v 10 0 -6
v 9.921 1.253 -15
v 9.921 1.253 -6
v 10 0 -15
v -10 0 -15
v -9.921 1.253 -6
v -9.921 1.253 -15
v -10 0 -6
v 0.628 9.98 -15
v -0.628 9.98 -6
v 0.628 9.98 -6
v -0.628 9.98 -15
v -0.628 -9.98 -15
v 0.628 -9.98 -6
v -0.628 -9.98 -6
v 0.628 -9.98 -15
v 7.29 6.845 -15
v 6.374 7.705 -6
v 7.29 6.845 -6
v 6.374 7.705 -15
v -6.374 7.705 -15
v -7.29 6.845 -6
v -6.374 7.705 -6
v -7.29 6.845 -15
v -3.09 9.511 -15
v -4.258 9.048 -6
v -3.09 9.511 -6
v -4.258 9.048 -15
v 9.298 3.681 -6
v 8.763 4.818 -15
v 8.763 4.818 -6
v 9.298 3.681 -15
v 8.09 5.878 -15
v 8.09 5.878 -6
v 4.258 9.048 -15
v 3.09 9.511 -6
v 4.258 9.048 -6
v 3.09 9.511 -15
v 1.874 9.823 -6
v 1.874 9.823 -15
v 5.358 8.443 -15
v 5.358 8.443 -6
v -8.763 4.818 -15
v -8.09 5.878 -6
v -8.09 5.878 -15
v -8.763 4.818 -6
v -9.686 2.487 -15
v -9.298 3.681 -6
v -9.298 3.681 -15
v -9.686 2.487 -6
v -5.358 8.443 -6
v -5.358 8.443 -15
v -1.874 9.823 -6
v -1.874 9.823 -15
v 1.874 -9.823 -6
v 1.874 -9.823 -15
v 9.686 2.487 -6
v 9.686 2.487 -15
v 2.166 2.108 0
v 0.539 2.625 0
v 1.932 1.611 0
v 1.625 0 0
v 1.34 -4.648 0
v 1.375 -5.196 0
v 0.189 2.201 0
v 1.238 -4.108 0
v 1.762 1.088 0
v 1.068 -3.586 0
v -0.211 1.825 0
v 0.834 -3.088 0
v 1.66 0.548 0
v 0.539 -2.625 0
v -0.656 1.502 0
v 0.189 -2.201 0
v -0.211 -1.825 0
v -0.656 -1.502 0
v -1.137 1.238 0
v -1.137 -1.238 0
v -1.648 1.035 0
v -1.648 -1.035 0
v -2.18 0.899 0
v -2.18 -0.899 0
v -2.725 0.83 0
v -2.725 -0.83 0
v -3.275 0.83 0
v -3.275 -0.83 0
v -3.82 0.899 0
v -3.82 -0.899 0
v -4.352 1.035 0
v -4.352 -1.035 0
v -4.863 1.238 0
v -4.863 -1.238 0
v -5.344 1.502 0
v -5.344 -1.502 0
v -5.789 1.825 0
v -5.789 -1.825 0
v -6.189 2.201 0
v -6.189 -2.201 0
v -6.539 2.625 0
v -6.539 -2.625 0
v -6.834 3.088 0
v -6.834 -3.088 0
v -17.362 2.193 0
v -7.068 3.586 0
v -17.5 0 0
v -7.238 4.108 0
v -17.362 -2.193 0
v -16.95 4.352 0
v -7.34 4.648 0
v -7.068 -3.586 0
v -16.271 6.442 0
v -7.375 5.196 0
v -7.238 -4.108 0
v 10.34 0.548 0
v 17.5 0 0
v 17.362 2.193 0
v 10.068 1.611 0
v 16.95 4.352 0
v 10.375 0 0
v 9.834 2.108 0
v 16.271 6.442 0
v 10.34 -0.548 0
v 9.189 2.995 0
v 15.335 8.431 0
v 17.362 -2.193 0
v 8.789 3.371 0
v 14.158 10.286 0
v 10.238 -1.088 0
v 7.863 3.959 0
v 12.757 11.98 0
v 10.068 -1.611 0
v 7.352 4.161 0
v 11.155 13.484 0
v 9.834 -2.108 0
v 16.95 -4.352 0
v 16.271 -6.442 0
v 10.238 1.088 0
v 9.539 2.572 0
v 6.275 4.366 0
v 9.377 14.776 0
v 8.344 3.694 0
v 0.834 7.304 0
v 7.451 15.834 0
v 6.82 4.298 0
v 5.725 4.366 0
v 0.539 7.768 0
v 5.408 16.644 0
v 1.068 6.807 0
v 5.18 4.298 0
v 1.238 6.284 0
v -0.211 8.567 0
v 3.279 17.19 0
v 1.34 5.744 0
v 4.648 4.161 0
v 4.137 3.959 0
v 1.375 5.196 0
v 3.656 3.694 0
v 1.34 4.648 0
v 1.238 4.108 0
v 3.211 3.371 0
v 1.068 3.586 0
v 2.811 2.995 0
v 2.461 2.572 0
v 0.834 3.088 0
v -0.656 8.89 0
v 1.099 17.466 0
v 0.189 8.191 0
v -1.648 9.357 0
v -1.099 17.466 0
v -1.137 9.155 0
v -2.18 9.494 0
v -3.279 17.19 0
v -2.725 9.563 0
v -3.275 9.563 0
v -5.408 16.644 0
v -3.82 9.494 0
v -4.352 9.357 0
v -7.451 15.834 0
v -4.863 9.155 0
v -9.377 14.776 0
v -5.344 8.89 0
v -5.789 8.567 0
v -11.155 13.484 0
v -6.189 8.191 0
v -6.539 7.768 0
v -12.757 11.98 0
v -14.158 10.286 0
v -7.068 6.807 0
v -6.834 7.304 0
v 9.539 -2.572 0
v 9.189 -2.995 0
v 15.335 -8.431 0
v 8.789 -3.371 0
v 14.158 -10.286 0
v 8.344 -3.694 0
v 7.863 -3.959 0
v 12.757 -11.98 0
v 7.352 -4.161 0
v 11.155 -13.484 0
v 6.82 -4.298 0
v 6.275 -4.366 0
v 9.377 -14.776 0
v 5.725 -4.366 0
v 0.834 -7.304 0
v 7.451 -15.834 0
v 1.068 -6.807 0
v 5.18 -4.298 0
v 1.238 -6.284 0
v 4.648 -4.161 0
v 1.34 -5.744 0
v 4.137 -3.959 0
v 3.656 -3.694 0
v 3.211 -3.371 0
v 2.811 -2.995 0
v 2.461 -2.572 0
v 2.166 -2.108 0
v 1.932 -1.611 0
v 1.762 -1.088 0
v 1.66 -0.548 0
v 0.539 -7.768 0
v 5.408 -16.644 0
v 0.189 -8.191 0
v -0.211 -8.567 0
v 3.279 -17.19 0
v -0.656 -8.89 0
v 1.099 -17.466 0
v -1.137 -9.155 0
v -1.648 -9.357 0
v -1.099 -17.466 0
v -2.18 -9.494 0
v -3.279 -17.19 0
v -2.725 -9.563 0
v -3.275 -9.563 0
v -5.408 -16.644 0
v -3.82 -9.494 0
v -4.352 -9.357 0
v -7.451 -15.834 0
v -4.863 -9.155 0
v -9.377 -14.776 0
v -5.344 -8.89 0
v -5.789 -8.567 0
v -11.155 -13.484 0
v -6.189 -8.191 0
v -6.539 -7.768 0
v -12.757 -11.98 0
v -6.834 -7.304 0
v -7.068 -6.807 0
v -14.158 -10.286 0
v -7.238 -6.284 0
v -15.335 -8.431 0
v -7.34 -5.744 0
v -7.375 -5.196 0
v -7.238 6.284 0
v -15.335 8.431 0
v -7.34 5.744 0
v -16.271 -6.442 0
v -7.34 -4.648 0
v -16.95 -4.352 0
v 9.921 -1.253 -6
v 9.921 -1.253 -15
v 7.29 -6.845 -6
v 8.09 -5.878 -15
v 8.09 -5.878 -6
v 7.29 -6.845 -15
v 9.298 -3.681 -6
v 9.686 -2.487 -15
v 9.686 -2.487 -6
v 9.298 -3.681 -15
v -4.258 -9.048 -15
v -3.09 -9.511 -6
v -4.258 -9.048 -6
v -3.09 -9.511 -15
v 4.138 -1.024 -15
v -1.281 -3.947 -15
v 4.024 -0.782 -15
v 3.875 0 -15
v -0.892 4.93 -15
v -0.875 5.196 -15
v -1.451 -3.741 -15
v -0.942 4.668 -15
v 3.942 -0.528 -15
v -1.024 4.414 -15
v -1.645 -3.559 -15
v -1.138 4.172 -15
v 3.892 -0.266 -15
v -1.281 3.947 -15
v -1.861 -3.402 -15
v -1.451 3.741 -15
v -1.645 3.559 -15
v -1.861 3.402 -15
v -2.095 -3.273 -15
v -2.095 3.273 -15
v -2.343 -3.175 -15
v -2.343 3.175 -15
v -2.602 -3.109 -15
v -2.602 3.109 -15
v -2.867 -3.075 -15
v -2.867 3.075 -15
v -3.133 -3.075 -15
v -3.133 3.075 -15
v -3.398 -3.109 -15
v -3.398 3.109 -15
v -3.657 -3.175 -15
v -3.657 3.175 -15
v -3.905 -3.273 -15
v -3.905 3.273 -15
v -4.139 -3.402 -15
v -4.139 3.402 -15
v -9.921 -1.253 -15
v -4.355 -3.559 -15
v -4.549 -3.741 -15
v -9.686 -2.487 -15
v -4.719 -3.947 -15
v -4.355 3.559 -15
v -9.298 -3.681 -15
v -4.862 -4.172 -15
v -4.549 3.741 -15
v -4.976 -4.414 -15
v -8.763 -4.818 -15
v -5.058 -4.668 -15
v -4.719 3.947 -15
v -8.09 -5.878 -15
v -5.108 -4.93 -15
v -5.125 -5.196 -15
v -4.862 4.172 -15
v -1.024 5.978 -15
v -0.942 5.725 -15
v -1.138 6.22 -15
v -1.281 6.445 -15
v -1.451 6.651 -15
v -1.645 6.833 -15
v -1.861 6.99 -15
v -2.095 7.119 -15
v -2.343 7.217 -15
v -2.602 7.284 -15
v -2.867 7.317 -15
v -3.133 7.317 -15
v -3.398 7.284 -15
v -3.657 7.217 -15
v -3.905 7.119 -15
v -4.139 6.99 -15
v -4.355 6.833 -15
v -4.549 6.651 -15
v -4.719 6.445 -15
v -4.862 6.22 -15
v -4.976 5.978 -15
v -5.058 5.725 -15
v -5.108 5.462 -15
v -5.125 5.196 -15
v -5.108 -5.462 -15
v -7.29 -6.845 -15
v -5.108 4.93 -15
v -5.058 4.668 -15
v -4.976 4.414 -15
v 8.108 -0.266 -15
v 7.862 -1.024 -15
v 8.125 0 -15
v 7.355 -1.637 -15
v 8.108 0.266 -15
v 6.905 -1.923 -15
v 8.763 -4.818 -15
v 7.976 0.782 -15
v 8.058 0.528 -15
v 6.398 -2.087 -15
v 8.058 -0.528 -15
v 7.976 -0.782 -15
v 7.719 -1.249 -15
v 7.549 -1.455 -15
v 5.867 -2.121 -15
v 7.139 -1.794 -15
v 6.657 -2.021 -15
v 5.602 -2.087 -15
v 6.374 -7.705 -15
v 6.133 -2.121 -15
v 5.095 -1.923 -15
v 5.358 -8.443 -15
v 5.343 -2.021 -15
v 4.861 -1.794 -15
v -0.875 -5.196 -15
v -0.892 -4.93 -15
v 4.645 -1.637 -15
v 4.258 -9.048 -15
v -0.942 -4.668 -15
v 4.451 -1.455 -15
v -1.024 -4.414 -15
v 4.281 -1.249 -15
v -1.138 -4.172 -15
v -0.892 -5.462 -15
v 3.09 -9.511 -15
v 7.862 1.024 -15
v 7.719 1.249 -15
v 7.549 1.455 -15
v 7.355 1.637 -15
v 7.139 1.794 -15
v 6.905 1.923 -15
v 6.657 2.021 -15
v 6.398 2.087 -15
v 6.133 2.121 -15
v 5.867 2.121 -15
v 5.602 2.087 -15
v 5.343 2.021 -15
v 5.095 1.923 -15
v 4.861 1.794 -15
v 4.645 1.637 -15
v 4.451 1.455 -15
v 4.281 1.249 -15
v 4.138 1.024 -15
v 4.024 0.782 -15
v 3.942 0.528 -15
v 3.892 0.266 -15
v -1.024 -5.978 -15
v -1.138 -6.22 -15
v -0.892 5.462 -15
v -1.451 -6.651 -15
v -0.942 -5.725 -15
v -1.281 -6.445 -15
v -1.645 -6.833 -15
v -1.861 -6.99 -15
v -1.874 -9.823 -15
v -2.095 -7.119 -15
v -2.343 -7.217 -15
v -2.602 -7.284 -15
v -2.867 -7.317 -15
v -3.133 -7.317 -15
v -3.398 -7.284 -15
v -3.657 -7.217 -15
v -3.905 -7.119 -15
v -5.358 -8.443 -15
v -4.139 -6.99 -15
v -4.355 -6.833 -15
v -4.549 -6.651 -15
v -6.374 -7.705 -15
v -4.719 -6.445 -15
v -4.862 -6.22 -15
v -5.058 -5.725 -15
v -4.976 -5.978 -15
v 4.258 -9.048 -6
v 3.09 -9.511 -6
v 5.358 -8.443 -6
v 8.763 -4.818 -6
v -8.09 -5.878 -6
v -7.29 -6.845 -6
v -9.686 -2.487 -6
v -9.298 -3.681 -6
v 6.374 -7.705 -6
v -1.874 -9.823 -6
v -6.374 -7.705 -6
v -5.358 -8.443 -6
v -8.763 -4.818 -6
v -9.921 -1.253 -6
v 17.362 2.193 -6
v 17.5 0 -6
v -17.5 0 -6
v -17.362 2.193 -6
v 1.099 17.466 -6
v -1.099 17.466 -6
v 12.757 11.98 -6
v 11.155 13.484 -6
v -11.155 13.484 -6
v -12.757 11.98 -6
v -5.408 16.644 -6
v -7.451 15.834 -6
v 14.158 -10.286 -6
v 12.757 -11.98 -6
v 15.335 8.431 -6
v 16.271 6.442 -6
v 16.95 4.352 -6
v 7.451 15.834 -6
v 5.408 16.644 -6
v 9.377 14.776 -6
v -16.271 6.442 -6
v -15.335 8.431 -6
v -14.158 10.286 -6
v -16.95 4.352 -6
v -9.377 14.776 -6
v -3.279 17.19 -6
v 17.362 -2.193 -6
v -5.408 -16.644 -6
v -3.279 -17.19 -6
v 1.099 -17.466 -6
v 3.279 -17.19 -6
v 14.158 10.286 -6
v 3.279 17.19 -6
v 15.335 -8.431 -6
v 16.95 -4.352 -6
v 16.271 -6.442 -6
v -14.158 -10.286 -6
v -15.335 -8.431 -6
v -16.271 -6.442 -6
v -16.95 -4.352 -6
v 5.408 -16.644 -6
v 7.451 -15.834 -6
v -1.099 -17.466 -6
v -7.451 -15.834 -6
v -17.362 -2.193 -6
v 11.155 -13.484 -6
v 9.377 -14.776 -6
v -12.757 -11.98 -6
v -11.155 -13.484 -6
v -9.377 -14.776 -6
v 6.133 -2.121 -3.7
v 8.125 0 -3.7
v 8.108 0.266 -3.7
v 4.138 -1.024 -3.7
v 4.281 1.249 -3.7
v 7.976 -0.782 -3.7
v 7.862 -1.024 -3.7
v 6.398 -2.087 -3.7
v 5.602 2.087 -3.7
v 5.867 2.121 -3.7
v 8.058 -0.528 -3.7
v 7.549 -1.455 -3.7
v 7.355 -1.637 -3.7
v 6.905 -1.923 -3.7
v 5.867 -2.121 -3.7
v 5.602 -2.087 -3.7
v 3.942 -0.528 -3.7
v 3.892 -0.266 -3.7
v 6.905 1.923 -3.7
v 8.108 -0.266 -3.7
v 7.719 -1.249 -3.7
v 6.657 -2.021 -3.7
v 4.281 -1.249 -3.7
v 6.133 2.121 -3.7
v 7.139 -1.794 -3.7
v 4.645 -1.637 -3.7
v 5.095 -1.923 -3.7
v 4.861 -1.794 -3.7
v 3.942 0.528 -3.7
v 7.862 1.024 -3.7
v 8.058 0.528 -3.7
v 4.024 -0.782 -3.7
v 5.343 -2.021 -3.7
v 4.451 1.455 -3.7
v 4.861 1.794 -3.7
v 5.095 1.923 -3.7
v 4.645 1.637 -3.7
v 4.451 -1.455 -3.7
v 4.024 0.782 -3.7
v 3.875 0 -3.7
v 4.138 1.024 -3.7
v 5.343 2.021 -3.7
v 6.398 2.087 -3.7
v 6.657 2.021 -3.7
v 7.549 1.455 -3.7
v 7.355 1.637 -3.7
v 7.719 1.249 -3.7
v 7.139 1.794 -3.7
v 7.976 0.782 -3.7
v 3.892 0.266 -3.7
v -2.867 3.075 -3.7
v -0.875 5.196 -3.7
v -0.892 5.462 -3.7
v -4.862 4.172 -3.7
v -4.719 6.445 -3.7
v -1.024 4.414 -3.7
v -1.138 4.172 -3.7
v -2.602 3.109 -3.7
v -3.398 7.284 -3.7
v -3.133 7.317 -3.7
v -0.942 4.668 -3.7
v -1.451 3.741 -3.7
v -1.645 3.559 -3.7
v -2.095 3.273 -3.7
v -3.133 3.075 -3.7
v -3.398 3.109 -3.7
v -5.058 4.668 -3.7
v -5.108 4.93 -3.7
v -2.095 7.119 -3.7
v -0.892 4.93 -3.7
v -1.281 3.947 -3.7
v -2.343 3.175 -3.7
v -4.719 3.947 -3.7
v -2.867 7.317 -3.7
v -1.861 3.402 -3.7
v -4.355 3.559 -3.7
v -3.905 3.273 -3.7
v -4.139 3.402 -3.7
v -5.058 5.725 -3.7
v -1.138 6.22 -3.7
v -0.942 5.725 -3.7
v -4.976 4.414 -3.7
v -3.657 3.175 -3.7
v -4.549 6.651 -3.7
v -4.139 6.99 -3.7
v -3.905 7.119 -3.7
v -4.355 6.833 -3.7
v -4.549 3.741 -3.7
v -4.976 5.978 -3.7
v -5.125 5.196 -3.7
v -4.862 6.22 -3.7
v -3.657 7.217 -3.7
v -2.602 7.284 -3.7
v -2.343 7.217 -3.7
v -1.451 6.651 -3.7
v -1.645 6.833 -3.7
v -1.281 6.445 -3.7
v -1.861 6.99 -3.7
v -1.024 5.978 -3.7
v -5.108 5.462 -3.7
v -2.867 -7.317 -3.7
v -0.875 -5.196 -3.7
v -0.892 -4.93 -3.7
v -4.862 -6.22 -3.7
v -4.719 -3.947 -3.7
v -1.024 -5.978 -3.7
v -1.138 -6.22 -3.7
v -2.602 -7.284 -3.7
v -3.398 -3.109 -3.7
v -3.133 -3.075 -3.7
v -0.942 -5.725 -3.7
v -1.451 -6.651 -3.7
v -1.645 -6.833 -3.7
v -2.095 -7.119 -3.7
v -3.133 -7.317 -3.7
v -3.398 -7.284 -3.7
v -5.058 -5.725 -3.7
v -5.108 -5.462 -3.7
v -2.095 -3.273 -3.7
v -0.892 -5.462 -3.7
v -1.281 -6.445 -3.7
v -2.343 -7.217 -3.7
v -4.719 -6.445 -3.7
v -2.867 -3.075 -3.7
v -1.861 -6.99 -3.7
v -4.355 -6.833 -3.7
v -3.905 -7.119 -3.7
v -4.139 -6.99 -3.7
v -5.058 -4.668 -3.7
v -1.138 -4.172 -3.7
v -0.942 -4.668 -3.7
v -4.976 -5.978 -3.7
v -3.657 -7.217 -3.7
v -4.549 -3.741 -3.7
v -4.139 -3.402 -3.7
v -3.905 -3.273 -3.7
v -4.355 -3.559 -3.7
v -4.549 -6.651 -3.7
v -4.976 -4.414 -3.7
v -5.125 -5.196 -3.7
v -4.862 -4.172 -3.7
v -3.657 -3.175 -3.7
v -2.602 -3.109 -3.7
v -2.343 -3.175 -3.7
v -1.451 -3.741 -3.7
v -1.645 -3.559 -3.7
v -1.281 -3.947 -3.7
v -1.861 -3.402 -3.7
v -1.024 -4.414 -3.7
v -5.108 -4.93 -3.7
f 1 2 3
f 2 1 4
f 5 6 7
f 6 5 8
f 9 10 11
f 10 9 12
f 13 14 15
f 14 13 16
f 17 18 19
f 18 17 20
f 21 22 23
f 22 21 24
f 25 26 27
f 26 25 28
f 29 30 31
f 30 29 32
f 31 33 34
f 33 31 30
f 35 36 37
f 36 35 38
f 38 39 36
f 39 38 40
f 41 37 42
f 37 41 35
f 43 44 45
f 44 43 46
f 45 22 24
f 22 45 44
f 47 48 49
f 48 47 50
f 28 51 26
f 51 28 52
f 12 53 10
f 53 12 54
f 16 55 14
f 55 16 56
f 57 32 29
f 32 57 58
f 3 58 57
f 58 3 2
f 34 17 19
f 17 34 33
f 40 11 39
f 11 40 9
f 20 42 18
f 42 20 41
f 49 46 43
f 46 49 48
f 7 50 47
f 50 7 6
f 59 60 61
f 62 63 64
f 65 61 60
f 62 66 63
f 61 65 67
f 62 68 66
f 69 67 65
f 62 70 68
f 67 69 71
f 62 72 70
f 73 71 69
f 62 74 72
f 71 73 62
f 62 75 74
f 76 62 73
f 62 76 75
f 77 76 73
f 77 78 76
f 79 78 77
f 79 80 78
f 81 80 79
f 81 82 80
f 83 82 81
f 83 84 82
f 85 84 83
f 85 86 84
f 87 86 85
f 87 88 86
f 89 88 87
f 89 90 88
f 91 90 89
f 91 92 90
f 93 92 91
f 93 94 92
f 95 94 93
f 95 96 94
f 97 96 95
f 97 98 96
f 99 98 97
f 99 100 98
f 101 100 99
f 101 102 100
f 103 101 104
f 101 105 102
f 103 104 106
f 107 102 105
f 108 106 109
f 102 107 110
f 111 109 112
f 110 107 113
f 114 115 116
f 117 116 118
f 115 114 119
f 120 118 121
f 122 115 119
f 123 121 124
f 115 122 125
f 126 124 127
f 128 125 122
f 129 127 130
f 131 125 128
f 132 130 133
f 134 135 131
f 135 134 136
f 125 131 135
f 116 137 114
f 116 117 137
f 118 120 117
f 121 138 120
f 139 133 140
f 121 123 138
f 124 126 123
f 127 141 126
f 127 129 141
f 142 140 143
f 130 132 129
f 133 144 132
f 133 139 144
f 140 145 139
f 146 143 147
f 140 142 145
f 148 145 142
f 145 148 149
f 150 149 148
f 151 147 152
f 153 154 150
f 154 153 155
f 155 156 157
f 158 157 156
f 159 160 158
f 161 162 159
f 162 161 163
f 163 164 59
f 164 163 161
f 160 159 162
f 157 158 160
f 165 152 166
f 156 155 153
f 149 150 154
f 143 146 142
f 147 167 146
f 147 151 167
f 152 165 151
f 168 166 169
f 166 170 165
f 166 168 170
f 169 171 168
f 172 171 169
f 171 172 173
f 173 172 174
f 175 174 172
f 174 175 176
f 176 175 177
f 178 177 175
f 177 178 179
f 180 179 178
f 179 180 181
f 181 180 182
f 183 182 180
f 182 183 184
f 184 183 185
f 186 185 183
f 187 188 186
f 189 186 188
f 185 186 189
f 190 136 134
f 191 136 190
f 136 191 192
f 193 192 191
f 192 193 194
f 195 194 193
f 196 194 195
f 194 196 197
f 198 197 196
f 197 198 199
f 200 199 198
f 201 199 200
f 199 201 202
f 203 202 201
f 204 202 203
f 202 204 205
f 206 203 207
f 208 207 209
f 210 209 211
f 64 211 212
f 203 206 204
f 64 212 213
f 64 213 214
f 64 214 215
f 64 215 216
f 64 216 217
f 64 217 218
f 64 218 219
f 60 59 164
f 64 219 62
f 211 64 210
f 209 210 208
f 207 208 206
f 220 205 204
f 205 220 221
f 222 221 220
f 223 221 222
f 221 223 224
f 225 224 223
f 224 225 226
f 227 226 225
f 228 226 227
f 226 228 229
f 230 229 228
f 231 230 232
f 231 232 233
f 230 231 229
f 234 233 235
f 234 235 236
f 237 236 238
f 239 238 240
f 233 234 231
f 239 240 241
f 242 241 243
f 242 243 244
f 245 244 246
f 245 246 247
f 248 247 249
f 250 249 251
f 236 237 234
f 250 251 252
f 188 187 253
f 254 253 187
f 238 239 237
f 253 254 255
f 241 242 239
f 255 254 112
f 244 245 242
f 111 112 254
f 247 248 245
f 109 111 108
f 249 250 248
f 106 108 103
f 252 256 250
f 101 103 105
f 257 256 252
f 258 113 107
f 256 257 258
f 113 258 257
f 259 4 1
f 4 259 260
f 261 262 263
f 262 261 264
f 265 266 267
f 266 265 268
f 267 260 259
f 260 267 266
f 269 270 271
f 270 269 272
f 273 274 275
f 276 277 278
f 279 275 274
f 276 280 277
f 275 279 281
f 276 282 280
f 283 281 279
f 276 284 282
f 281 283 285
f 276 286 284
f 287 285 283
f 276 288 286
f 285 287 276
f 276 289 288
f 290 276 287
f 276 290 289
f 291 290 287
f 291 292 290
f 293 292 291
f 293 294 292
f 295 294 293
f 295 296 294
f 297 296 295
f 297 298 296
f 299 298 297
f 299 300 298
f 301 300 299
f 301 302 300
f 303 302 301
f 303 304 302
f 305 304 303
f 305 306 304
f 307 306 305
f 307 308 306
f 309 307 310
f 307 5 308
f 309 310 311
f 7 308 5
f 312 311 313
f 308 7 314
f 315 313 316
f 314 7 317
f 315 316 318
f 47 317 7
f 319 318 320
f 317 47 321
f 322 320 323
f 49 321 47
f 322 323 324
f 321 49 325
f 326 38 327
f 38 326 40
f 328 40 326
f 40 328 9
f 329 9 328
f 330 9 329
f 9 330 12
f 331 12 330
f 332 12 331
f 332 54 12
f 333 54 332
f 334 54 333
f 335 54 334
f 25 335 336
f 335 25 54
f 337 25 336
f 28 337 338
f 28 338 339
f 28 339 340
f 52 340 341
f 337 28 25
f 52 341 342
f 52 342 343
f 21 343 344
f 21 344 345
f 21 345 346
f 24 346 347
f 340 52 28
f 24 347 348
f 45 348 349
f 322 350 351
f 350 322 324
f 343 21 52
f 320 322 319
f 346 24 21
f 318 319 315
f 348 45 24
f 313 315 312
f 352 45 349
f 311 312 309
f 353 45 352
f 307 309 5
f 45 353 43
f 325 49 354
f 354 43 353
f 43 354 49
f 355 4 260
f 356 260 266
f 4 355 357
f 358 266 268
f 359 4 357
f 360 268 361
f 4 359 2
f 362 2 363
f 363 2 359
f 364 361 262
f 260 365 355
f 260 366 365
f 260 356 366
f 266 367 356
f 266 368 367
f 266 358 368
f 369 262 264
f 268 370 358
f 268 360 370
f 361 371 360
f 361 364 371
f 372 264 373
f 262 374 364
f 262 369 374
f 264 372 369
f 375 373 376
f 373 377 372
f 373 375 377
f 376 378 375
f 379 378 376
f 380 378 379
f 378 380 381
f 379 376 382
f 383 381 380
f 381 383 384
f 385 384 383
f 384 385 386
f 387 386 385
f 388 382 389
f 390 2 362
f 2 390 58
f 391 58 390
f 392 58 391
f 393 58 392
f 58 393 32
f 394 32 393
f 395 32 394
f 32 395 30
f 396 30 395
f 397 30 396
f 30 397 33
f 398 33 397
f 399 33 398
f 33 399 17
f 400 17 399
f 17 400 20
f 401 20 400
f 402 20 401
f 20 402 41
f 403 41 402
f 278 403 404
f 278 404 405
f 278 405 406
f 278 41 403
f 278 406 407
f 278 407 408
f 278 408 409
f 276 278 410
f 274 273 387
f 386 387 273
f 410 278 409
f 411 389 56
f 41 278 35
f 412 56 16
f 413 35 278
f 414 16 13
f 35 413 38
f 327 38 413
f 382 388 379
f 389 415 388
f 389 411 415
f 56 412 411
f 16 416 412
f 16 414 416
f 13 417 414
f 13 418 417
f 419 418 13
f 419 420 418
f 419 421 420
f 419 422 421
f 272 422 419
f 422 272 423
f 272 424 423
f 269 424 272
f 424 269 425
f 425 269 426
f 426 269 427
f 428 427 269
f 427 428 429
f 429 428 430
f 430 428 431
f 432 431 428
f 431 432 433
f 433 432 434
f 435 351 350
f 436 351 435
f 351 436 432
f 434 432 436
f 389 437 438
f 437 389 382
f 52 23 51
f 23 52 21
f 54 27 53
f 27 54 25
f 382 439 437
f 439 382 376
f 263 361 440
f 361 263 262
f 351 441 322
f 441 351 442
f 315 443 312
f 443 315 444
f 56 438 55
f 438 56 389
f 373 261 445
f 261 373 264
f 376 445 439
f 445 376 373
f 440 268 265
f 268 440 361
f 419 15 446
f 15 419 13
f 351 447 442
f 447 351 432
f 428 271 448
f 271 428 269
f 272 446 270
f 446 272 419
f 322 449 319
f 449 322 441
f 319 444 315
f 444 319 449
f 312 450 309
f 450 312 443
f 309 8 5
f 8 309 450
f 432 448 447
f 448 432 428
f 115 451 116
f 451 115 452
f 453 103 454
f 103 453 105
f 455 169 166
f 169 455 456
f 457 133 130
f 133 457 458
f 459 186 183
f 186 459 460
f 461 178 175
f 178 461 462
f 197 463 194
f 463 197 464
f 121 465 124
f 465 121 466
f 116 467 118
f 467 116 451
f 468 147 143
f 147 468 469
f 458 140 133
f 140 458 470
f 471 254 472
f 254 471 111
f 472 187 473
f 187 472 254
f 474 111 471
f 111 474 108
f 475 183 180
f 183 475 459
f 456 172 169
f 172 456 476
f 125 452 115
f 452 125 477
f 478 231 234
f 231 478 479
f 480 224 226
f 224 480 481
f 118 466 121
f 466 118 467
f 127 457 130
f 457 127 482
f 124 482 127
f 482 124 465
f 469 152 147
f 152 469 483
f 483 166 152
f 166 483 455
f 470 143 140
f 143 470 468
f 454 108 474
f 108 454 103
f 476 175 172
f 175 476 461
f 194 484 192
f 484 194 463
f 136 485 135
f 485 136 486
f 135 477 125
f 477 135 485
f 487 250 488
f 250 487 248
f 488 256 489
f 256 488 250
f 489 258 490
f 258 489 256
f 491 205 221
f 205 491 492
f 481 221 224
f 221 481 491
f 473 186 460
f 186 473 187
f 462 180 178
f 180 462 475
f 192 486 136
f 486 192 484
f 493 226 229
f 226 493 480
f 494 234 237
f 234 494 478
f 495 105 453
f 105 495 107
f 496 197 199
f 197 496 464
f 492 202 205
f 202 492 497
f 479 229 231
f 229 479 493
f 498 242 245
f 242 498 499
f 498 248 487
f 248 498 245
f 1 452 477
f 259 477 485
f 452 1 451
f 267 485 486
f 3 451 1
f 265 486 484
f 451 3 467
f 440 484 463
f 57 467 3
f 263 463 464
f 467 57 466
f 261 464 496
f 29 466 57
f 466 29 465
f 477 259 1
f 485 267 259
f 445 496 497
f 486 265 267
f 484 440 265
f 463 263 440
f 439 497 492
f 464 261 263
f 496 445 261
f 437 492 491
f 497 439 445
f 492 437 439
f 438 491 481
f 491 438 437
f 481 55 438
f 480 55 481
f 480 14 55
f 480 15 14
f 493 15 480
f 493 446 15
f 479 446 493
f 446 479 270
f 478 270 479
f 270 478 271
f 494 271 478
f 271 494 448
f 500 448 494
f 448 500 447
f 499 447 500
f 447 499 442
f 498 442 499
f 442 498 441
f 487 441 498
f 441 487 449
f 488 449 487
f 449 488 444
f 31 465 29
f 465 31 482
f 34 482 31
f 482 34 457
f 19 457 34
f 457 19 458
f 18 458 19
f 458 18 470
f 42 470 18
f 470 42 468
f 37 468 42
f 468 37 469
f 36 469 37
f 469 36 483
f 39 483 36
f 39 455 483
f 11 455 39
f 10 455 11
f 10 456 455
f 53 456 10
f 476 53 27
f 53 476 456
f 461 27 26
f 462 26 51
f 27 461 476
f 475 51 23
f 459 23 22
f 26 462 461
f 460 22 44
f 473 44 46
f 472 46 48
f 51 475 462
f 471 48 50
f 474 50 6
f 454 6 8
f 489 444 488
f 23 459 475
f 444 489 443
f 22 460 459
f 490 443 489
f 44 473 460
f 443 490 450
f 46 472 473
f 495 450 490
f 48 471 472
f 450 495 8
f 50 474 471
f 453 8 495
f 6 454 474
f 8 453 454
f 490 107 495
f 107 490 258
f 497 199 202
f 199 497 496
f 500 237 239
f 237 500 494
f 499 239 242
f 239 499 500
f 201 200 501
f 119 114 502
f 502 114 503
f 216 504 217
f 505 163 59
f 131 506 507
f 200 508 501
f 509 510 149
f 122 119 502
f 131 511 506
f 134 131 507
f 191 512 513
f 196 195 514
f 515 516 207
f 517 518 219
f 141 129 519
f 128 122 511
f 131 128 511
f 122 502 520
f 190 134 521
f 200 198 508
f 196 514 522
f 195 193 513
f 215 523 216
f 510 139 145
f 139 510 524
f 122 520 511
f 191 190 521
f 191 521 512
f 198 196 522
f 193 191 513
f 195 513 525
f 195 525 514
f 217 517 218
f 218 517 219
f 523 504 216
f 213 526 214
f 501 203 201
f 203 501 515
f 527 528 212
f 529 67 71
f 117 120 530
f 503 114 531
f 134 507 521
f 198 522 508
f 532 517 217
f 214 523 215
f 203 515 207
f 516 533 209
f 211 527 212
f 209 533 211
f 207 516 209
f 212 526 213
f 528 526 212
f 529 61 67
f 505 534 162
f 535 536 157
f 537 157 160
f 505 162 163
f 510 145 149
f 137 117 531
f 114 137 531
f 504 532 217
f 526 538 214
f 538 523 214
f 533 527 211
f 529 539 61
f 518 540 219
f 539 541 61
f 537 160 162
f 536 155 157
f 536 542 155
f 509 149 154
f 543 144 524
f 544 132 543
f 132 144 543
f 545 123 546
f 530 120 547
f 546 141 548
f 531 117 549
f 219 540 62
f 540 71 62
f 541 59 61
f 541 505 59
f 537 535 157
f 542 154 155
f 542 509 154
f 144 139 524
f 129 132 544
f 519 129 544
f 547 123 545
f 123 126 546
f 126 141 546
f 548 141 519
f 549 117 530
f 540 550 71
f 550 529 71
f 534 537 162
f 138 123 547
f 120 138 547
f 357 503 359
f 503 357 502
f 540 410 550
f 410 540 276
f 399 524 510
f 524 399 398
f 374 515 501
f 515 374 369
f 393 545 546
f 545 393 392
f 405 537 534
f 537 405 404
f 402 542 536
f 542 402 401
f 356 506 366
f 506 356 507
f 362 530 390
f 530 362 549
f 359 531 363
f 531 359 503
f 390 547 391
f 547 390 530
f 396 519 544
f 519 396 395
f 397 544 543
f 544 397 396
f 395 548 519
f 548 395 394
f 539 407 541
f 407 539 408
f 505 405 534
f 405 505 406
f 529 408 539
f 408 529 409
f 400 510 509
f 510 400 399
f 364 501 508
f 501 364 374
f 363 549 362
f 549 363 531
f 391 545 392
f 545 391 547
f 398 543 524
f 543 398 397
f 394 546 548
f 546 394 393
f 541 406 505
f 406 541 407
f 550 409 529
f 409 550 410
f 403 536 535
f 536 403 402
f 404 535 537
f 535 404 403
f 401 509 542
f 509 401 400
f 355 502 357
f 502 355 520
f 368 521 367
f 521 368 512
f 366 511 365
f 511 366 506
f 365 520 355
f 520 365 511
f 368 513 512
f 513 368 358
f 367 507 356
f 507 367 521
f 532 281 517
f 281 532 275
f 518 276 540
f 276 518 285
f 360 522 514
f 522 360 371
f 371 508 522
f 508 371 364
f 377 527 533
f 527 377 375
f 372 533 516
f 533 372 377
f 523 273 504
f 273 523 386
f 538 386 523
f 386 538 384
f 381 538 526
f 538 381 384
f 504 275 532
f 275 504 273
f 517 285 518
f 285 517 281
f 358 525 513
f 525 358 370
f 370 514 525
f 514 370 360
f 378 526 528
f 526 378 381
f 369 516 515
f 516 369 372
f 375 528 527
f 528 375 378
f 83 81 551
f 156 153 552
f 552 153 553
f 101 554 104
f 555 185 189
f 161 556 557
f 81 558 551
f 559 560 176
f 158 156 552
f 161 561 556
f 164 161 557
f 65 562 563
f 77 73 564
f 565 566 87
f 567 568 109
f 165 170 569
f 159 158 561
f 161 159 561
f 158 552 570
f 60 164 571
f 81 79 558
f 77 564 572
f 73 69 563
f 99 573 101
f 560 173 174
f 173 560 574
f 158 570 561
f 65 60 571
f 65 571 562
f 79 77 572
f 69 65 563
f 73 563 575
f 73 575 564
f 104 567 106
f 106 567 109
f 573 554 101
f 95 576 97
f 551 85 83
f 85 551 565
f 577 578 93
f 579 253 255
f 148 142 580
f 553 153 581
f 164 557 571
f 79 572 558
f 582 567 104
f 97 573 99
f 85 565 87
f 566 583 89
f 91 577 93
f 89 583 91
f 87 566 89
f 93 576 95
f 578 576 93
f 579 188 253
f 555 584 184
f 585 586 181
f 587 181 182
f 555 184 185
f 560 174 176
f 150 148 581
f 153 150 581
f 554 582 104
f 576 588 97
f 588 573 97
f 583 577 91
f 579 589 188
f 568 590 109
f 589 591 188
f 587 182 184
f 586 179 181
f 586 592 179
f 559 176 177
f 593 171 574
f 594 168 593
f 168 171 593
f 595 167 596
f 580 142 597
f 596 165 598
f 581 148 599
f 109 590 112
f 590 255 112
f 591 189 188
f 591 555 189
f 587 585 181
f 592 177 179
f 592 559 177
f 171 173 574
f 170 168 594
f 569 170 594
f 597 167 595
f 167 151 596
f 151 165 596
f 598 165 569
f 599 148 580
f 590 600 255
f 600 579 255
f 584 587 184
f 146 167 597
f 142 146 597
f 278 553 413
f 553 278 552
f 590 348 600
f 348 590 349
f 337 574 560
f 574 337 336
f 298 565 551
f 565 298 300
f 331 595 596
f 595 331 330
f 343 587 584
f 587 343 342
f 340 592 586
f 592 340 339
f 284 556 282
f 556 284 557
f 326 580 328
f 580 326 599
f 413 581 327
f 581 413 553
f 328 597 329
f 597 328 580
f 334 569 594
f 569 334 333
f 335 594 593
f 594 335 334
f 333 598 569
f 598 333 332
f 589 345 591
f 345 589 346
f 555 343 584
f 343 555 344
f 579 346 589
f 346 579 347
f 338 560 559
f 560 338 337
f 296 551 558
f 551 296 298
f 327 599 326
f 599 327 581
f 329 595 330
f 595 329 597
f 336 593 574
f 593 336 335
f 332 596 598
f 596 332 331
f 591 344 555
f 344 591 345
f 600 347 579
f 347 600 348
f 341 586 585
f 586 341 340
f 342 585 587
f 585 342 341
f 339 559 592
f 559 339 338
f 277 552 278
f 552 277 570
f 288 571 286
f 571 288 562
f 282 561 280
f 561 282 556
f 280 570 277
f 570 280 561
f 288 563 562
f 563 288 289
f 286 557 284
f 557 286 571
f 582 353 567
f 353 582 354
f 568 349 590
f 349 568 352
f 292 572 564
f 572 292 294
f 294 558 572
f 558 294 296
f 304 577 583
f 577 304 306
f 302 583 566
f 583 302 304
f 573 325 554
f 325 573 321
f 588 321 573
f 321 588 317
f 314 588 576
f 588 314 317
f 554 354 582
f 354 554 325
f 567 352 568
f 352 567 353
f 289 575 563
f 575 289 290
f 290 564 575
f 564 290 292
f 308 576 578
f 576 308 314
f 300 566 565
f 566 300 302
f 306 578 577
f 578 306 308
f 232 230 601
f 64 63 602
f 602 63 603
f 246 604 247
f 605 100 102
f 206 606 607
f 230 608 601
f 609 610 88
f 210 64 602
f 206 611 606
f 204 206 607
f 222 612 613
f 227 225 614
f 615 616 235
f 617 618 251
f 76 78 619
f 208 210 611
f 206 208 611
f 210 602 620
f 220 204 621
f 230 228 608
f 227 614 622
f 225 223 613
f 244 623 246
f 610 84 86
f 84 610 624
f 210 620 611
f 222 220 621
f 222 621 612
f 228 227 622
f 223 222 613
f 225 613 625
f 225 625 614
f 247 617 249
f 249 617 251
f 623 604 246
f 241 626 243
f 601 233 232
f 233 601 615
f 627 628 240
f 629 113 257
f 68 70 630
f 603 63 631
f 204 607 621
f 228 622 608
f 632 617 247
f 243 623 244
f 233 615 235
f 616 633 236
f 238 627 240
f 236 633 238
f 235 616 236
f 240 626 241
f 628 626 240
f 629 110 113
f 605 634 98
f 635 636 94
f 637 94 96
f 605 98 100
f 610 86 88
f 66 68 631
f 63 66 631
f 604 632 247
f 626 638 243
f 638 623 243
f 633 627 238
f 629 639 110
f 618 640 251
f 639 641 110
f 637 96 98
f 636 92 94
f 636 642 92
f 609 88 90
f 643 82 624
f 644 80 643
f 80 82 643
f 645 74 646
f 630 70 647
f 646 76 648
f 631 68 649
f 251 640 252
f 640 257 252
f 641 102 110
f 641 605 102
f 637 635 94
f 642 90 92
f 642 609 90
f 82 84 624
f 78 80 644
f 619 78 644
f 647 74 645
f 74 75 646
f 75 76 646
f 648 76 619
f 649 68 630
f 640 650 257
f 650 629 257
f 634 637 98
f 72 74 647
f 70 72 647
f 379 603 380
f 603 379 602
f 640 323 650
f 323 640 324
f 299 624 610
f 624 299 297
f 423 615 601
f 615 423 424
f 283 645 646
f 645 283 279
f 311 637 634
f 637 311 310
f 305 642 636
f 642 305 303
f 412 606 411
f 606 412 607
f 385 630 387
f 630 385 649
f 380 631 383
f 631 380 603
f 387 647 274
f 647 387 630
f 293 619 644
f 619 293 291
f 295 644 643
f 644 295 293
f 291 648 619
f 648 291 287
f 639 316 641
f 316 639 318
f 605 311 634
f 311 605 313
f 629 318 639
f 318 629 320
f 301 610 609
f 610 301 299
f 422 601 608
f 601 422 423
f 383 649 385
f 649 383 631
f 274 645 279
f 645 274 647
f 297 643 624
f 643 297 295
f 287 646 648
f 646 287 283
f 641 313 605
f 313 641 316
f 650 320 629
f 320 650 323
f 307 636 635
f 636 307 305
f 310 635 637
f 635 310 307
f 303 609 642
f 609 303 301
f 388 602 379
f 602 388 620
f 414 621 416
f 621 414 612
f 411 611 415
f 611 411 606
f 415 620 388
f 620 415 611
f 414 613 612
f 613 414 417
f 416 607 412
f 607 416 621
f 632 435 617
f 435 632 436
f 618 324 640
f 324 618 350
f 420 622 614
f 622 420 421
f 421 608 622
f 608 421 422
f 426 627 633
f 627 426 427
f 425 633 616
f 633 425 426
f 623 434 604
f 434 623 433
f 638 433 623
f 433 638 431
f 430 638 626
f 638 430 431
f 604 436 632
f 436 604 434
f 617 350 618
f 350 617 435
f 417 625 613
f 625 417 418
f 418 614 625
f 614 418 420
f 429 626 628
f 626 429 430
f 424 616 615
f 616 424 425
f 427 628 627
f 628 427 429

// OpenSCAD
$fn = 50;


difference() {
	union() {
		translate(v = [0, 0, -15.0000000000]) {
			cylinder(h = 15, r = 10.0000000000);
		}
		translate(v = [0, 0, -6.0000000000]) {
			cylinder(h = 6, r = 17.5000000000);
		}
	}
	union() {
		translate(v = [6.0000000000, 0.0000000000, 0]) {
			rotate(a = [0, 0, 0]) {
				difference() {
					union() {
						#translate(v = [0, 0, -15.0000000000]) {
							cylinder(h = 15, r = 2.0000000000);
						}
						#translate(v = [0, 0, -3.7000000000]) {
							cylinder(h = 3.7000000000, r = 10.0000000000, r1 = 2.1250000000, r2 = 4.3750000000);
						}
						#translate(v = [0, 0, -15.0000000000]) {
							cylinder(h = 15, r = 2.1250000000);
						}
						#translate(v = [0, 0, -15.0000000000]) {
							cylinder(h = 15, r = 2.0000000000);
						}
					}
					union();
				}
			}
		}
		translate(v = [-3.0000000000, 5.1961524227, 0]) {
			rotate(a = [0, 0, 0]) {
				difference() {
					union() {
						#translate(v = [0, 0, -15.0000000000]) {
							cylinder(h = 15, r = 2.0000000000);
						}
						#translate(v = [0, 0, -3.7000000000]) {
							cylinder(h = 3.7000000000, r = 10.0000000000, r1 = 2.1250000000, r2 = 4.3750000000);
						}
						#translate(v = [0, 0, -15.0000000000]) {
							cylinder(h = 15, r = 2.1250000000);
						}
						#translate(v = [0, 0, -15.0000000000]) {
							cylinder(h = 15, r = 2.0000000000);
						}
					}
					union();
				}
			}
		}
		translate(v = [-3.0000000000, -5.1961524227, 0]) {
			rotate(a = [0, 0, 0]) {
				difference() {
					union() {
						#translate(v = [0, 0, -15.0000000000]) {
							cylinder(h = 15, r = 2.0000000000);
						}
						#translate(v = [0, 0, -3.7000000000]) {
							cylinder(h = 3.7000000000, r = 10.0000000000, r1 = 2.1250000000, r2 = 4.3750000000);
						}
						#translate(v = [0, 0, -15.0000000000]) {
							cylinder(h = 15, r = 2.1250000000);
						}
						#translate(v = [0, 0, -15.0000000000]) {
							cylinder(h = 15, r = 2.0000000000);
						}
					}
					union();
				}
			}
		}
	}
}
